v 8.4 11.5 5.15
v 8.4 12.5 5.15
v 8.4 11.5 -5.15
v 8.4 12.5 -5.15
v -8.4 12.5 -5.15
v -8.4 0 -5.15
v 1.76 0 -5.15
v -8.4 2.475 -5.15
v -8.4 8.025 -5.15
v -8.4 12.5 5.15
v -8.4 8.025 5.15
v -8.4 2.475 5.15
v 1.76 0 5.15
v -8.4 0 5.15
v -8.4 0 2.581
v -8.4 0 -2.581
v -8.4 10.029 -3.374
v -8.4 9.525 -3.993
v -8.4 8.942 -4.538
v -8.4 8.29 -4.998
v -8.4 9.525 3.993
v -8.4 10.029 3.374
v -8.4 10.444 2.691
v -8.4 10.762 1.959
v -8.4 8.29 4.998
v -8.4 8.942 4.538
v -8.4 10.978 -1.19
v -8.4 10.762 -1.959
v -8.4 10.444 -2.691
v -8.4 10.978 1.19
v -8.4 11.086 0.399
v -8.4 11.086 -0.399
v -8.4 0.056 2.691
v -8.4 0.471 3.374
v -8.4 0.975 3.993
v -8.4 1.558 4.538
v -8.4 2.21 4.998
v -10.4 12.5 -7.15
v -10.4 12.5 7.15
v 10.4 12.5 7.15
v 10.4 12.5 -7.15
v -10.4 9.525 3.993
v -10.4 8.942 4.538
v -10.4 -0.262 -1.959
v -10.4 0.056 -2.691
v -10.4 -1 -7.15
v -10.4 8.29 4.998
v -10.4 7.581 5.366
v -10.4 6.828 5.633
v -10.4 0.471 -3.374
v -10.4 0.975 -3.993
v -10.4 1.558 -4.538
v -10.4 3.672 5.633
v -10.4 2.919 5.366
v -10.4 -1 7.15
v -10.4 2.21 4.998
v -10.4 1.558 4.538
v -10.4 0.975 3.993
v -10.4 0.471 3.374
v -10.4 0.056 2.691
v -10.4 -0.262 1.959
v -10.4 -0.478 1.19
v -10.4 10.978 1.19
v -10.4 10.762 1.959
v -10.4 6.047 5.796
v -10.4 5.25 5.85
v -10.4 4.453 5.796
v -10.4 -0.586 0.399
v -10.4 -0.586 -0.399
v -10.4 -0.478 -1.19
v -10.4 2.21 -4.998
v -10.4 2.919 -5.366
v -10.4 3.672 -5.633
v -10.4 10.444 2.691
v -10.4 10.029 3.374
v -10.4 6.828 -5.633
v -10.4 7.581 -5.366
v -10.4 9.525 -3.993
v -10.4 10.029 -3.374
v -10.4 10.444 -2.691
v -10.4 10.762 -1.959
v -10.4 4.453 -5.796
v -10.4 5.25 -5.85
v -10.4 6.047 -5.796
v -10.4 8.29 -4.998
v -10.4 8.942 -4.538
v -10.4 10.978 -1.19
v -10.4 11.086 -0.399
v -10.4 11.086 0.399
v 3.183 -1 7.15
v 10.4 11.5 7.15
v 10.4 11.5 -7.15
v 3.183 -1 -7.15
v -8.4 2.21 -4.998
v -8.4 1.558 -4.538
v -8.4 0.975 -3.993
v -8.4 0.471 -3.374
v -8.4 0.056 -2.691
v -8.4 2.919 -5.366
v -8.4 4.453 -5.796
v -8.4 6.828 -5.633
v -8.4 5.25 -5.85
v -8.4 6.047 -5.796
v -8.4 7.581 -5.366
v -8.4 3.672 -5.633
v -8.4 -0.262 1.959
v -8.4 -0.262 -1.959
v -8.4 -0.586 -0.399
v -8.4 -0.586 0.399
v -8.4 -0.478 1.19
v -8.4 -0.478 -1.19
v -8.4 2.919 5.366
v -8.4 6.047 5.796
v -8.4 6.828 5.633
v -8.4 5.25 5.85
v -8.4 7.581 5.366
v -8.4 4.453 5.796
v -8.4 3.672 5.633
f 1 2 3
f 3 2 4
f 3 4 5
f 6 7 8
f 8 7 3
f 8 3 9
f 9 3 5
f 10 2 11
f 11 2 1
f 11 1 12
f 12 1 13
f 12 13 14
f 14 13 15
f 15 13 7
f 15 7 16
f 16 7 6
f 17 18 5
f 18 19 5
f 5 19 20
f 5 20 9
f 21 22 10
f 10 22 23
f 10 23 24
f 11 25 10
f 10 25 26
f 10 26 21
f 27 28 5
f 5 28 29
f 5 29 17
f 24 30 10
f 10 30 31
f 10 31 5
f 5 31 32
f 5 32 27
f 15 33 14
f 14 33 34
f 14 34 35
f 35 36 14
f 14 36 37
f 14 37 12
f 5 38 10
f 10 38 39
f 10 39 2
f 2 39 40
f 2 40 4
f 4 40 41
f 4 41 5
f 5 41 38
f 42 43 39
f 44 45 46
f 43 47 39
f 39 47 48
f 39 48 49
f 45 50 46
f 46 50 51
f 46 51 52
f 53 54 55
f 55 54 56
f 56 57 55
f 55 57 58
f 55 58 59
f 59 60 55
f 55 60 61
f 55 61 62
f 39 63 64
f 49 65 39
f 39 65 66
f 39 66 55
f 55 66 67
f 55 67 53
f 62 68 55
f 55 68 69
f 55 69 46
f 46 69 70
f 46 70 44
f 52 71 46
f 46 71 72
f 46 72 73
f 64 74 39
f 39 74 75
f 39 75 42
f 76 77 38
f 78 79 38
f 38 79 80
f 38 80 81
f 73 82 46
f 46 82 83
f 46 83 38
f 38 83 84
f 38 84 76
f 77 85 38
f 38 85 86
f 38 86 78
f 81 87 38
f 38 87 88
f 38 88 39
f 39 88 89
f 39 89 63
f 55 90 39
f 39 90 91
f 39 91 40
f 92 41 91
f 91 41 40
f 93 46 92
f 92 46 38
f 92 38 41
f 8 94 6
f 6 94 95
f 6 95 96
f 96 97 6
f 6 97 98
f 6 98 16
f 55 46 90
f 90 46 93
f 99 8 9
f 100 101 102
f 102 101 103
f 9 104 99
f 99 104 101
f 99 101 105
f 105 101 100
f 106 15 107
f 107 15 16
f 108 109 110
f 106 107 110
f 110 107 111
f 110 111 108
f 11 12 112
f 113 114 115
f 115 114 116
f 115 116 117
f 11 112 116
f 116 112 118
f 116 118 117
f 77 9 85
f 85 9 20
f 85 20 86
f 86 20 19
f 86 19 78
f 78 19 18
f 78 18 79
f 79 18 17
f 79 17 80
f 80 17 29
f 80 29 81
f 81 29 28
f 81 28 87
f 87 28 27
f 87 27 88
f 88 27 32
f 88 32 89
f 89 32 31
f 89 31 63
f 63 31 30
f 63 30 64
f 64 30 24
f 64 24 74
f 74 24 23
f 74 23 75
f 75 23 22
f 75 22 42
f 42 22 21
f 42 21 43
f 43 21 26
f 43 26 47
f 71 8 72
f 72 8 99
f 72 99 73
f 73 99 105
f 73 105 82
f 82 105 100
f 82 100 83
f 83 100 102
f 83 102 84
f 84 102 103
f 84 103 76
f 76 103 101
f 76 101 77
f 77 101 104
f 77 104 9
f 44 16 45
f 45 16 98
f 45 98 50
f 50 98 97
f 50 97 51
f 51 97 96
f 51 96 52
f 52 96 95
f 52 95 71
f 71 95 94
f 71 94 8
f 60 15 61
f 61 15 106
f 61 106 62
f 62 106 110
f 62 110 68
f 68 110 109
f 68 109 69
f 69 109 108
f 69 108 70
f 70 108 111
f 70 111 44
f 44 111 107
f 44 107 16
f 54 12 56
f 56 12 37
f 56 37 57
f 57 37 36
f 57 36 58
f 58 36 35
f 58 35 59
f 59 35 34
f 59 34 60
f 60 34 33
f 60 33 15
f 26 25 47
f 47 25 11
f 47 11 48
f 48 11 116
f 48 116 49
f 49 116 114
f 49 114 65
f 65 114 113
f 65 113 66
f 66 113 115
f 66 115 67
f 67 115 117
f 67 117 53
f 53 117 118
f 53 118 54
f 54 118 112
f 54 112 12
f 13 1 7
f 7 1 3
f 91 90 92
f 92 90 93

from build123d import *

# Parameters (mm, degrees)
SKETCH1_W           = 20.8
SKETCH1_H           = 14.3
SKETCH1_W_2         = 16.8
SKETCH1_H_2         = 10.3
BOSS_EXTRUDE1_DEPTH = 12.5
SKETCH2_W           = 20.8
SKETCH2_H           = 14.3
BOSS_EXTRUDE2_DEPTH = 1
SKETCH3_R           = 5.85
CUT_EXTRUDE2_DEPTH  = 2
BOSS_EXTRUDE3_DEPTH = 6
CUT_EXTRUDE3_DEPTH  = 14.3


with BuildPart() as part:
    # Sketch1 → Boss-Extrude1 (new body)
    with BuildSketch(Plane(origin=(0, 0, 0), x_dir=(1, 0, 0), z_dir=(0, 1, 0))):
        Rectangle(SKETCH1_W, SKETCH1_H)
        Rectangle(SKETCH1_W_2, SKETCH1_H_2, mode=Mode.SUBTRACT)
    extrude(amount=BOSS_EXTRUDE1_DEPTH)

    # Sketch2 → Boss-Extrude2 (add)
    with BuildSketch(Plane.XZ):
        Rectangle(SKETCH2_W, SKETCH2_H)
    extrude(amount=BOSS_EXTRUDE2_DEPTH)

    # Sketch3 → Cut-Extrude2 (cut)
    with BuildSketch(Plane.ZY.offset(10.4)):
        with Locations((0, 5.25)):
            Circle(SKETCH3_R)
    extrude(amount=-CUT_EXTRUDE2_DEPTH, mode=Mode.SUBTRACT)

    # Sketch4 → Boss-Extrude3 (add, symmetric)
    with BuildSketch(Plane.XY):
        Polygon((8.4, 11.5), (1.760471904, 0), (8.4, 0), align=None)
    extrude(amount=BOSS_EXTRUDE3_DEPTH, both=True)

    # Sketch5 → Cut-Extrude3 (cut)
    with BuildSketch(Plane.XY.offset(7.15)):
        Polygon((10.4, -1), (10.4, 11.5), (3.183121635, -1), align=None)
    extrude(amount=-CUT_EXTRUDE3_DEPTH, mode=Mode.SUBTRACT)


solid = part.part
